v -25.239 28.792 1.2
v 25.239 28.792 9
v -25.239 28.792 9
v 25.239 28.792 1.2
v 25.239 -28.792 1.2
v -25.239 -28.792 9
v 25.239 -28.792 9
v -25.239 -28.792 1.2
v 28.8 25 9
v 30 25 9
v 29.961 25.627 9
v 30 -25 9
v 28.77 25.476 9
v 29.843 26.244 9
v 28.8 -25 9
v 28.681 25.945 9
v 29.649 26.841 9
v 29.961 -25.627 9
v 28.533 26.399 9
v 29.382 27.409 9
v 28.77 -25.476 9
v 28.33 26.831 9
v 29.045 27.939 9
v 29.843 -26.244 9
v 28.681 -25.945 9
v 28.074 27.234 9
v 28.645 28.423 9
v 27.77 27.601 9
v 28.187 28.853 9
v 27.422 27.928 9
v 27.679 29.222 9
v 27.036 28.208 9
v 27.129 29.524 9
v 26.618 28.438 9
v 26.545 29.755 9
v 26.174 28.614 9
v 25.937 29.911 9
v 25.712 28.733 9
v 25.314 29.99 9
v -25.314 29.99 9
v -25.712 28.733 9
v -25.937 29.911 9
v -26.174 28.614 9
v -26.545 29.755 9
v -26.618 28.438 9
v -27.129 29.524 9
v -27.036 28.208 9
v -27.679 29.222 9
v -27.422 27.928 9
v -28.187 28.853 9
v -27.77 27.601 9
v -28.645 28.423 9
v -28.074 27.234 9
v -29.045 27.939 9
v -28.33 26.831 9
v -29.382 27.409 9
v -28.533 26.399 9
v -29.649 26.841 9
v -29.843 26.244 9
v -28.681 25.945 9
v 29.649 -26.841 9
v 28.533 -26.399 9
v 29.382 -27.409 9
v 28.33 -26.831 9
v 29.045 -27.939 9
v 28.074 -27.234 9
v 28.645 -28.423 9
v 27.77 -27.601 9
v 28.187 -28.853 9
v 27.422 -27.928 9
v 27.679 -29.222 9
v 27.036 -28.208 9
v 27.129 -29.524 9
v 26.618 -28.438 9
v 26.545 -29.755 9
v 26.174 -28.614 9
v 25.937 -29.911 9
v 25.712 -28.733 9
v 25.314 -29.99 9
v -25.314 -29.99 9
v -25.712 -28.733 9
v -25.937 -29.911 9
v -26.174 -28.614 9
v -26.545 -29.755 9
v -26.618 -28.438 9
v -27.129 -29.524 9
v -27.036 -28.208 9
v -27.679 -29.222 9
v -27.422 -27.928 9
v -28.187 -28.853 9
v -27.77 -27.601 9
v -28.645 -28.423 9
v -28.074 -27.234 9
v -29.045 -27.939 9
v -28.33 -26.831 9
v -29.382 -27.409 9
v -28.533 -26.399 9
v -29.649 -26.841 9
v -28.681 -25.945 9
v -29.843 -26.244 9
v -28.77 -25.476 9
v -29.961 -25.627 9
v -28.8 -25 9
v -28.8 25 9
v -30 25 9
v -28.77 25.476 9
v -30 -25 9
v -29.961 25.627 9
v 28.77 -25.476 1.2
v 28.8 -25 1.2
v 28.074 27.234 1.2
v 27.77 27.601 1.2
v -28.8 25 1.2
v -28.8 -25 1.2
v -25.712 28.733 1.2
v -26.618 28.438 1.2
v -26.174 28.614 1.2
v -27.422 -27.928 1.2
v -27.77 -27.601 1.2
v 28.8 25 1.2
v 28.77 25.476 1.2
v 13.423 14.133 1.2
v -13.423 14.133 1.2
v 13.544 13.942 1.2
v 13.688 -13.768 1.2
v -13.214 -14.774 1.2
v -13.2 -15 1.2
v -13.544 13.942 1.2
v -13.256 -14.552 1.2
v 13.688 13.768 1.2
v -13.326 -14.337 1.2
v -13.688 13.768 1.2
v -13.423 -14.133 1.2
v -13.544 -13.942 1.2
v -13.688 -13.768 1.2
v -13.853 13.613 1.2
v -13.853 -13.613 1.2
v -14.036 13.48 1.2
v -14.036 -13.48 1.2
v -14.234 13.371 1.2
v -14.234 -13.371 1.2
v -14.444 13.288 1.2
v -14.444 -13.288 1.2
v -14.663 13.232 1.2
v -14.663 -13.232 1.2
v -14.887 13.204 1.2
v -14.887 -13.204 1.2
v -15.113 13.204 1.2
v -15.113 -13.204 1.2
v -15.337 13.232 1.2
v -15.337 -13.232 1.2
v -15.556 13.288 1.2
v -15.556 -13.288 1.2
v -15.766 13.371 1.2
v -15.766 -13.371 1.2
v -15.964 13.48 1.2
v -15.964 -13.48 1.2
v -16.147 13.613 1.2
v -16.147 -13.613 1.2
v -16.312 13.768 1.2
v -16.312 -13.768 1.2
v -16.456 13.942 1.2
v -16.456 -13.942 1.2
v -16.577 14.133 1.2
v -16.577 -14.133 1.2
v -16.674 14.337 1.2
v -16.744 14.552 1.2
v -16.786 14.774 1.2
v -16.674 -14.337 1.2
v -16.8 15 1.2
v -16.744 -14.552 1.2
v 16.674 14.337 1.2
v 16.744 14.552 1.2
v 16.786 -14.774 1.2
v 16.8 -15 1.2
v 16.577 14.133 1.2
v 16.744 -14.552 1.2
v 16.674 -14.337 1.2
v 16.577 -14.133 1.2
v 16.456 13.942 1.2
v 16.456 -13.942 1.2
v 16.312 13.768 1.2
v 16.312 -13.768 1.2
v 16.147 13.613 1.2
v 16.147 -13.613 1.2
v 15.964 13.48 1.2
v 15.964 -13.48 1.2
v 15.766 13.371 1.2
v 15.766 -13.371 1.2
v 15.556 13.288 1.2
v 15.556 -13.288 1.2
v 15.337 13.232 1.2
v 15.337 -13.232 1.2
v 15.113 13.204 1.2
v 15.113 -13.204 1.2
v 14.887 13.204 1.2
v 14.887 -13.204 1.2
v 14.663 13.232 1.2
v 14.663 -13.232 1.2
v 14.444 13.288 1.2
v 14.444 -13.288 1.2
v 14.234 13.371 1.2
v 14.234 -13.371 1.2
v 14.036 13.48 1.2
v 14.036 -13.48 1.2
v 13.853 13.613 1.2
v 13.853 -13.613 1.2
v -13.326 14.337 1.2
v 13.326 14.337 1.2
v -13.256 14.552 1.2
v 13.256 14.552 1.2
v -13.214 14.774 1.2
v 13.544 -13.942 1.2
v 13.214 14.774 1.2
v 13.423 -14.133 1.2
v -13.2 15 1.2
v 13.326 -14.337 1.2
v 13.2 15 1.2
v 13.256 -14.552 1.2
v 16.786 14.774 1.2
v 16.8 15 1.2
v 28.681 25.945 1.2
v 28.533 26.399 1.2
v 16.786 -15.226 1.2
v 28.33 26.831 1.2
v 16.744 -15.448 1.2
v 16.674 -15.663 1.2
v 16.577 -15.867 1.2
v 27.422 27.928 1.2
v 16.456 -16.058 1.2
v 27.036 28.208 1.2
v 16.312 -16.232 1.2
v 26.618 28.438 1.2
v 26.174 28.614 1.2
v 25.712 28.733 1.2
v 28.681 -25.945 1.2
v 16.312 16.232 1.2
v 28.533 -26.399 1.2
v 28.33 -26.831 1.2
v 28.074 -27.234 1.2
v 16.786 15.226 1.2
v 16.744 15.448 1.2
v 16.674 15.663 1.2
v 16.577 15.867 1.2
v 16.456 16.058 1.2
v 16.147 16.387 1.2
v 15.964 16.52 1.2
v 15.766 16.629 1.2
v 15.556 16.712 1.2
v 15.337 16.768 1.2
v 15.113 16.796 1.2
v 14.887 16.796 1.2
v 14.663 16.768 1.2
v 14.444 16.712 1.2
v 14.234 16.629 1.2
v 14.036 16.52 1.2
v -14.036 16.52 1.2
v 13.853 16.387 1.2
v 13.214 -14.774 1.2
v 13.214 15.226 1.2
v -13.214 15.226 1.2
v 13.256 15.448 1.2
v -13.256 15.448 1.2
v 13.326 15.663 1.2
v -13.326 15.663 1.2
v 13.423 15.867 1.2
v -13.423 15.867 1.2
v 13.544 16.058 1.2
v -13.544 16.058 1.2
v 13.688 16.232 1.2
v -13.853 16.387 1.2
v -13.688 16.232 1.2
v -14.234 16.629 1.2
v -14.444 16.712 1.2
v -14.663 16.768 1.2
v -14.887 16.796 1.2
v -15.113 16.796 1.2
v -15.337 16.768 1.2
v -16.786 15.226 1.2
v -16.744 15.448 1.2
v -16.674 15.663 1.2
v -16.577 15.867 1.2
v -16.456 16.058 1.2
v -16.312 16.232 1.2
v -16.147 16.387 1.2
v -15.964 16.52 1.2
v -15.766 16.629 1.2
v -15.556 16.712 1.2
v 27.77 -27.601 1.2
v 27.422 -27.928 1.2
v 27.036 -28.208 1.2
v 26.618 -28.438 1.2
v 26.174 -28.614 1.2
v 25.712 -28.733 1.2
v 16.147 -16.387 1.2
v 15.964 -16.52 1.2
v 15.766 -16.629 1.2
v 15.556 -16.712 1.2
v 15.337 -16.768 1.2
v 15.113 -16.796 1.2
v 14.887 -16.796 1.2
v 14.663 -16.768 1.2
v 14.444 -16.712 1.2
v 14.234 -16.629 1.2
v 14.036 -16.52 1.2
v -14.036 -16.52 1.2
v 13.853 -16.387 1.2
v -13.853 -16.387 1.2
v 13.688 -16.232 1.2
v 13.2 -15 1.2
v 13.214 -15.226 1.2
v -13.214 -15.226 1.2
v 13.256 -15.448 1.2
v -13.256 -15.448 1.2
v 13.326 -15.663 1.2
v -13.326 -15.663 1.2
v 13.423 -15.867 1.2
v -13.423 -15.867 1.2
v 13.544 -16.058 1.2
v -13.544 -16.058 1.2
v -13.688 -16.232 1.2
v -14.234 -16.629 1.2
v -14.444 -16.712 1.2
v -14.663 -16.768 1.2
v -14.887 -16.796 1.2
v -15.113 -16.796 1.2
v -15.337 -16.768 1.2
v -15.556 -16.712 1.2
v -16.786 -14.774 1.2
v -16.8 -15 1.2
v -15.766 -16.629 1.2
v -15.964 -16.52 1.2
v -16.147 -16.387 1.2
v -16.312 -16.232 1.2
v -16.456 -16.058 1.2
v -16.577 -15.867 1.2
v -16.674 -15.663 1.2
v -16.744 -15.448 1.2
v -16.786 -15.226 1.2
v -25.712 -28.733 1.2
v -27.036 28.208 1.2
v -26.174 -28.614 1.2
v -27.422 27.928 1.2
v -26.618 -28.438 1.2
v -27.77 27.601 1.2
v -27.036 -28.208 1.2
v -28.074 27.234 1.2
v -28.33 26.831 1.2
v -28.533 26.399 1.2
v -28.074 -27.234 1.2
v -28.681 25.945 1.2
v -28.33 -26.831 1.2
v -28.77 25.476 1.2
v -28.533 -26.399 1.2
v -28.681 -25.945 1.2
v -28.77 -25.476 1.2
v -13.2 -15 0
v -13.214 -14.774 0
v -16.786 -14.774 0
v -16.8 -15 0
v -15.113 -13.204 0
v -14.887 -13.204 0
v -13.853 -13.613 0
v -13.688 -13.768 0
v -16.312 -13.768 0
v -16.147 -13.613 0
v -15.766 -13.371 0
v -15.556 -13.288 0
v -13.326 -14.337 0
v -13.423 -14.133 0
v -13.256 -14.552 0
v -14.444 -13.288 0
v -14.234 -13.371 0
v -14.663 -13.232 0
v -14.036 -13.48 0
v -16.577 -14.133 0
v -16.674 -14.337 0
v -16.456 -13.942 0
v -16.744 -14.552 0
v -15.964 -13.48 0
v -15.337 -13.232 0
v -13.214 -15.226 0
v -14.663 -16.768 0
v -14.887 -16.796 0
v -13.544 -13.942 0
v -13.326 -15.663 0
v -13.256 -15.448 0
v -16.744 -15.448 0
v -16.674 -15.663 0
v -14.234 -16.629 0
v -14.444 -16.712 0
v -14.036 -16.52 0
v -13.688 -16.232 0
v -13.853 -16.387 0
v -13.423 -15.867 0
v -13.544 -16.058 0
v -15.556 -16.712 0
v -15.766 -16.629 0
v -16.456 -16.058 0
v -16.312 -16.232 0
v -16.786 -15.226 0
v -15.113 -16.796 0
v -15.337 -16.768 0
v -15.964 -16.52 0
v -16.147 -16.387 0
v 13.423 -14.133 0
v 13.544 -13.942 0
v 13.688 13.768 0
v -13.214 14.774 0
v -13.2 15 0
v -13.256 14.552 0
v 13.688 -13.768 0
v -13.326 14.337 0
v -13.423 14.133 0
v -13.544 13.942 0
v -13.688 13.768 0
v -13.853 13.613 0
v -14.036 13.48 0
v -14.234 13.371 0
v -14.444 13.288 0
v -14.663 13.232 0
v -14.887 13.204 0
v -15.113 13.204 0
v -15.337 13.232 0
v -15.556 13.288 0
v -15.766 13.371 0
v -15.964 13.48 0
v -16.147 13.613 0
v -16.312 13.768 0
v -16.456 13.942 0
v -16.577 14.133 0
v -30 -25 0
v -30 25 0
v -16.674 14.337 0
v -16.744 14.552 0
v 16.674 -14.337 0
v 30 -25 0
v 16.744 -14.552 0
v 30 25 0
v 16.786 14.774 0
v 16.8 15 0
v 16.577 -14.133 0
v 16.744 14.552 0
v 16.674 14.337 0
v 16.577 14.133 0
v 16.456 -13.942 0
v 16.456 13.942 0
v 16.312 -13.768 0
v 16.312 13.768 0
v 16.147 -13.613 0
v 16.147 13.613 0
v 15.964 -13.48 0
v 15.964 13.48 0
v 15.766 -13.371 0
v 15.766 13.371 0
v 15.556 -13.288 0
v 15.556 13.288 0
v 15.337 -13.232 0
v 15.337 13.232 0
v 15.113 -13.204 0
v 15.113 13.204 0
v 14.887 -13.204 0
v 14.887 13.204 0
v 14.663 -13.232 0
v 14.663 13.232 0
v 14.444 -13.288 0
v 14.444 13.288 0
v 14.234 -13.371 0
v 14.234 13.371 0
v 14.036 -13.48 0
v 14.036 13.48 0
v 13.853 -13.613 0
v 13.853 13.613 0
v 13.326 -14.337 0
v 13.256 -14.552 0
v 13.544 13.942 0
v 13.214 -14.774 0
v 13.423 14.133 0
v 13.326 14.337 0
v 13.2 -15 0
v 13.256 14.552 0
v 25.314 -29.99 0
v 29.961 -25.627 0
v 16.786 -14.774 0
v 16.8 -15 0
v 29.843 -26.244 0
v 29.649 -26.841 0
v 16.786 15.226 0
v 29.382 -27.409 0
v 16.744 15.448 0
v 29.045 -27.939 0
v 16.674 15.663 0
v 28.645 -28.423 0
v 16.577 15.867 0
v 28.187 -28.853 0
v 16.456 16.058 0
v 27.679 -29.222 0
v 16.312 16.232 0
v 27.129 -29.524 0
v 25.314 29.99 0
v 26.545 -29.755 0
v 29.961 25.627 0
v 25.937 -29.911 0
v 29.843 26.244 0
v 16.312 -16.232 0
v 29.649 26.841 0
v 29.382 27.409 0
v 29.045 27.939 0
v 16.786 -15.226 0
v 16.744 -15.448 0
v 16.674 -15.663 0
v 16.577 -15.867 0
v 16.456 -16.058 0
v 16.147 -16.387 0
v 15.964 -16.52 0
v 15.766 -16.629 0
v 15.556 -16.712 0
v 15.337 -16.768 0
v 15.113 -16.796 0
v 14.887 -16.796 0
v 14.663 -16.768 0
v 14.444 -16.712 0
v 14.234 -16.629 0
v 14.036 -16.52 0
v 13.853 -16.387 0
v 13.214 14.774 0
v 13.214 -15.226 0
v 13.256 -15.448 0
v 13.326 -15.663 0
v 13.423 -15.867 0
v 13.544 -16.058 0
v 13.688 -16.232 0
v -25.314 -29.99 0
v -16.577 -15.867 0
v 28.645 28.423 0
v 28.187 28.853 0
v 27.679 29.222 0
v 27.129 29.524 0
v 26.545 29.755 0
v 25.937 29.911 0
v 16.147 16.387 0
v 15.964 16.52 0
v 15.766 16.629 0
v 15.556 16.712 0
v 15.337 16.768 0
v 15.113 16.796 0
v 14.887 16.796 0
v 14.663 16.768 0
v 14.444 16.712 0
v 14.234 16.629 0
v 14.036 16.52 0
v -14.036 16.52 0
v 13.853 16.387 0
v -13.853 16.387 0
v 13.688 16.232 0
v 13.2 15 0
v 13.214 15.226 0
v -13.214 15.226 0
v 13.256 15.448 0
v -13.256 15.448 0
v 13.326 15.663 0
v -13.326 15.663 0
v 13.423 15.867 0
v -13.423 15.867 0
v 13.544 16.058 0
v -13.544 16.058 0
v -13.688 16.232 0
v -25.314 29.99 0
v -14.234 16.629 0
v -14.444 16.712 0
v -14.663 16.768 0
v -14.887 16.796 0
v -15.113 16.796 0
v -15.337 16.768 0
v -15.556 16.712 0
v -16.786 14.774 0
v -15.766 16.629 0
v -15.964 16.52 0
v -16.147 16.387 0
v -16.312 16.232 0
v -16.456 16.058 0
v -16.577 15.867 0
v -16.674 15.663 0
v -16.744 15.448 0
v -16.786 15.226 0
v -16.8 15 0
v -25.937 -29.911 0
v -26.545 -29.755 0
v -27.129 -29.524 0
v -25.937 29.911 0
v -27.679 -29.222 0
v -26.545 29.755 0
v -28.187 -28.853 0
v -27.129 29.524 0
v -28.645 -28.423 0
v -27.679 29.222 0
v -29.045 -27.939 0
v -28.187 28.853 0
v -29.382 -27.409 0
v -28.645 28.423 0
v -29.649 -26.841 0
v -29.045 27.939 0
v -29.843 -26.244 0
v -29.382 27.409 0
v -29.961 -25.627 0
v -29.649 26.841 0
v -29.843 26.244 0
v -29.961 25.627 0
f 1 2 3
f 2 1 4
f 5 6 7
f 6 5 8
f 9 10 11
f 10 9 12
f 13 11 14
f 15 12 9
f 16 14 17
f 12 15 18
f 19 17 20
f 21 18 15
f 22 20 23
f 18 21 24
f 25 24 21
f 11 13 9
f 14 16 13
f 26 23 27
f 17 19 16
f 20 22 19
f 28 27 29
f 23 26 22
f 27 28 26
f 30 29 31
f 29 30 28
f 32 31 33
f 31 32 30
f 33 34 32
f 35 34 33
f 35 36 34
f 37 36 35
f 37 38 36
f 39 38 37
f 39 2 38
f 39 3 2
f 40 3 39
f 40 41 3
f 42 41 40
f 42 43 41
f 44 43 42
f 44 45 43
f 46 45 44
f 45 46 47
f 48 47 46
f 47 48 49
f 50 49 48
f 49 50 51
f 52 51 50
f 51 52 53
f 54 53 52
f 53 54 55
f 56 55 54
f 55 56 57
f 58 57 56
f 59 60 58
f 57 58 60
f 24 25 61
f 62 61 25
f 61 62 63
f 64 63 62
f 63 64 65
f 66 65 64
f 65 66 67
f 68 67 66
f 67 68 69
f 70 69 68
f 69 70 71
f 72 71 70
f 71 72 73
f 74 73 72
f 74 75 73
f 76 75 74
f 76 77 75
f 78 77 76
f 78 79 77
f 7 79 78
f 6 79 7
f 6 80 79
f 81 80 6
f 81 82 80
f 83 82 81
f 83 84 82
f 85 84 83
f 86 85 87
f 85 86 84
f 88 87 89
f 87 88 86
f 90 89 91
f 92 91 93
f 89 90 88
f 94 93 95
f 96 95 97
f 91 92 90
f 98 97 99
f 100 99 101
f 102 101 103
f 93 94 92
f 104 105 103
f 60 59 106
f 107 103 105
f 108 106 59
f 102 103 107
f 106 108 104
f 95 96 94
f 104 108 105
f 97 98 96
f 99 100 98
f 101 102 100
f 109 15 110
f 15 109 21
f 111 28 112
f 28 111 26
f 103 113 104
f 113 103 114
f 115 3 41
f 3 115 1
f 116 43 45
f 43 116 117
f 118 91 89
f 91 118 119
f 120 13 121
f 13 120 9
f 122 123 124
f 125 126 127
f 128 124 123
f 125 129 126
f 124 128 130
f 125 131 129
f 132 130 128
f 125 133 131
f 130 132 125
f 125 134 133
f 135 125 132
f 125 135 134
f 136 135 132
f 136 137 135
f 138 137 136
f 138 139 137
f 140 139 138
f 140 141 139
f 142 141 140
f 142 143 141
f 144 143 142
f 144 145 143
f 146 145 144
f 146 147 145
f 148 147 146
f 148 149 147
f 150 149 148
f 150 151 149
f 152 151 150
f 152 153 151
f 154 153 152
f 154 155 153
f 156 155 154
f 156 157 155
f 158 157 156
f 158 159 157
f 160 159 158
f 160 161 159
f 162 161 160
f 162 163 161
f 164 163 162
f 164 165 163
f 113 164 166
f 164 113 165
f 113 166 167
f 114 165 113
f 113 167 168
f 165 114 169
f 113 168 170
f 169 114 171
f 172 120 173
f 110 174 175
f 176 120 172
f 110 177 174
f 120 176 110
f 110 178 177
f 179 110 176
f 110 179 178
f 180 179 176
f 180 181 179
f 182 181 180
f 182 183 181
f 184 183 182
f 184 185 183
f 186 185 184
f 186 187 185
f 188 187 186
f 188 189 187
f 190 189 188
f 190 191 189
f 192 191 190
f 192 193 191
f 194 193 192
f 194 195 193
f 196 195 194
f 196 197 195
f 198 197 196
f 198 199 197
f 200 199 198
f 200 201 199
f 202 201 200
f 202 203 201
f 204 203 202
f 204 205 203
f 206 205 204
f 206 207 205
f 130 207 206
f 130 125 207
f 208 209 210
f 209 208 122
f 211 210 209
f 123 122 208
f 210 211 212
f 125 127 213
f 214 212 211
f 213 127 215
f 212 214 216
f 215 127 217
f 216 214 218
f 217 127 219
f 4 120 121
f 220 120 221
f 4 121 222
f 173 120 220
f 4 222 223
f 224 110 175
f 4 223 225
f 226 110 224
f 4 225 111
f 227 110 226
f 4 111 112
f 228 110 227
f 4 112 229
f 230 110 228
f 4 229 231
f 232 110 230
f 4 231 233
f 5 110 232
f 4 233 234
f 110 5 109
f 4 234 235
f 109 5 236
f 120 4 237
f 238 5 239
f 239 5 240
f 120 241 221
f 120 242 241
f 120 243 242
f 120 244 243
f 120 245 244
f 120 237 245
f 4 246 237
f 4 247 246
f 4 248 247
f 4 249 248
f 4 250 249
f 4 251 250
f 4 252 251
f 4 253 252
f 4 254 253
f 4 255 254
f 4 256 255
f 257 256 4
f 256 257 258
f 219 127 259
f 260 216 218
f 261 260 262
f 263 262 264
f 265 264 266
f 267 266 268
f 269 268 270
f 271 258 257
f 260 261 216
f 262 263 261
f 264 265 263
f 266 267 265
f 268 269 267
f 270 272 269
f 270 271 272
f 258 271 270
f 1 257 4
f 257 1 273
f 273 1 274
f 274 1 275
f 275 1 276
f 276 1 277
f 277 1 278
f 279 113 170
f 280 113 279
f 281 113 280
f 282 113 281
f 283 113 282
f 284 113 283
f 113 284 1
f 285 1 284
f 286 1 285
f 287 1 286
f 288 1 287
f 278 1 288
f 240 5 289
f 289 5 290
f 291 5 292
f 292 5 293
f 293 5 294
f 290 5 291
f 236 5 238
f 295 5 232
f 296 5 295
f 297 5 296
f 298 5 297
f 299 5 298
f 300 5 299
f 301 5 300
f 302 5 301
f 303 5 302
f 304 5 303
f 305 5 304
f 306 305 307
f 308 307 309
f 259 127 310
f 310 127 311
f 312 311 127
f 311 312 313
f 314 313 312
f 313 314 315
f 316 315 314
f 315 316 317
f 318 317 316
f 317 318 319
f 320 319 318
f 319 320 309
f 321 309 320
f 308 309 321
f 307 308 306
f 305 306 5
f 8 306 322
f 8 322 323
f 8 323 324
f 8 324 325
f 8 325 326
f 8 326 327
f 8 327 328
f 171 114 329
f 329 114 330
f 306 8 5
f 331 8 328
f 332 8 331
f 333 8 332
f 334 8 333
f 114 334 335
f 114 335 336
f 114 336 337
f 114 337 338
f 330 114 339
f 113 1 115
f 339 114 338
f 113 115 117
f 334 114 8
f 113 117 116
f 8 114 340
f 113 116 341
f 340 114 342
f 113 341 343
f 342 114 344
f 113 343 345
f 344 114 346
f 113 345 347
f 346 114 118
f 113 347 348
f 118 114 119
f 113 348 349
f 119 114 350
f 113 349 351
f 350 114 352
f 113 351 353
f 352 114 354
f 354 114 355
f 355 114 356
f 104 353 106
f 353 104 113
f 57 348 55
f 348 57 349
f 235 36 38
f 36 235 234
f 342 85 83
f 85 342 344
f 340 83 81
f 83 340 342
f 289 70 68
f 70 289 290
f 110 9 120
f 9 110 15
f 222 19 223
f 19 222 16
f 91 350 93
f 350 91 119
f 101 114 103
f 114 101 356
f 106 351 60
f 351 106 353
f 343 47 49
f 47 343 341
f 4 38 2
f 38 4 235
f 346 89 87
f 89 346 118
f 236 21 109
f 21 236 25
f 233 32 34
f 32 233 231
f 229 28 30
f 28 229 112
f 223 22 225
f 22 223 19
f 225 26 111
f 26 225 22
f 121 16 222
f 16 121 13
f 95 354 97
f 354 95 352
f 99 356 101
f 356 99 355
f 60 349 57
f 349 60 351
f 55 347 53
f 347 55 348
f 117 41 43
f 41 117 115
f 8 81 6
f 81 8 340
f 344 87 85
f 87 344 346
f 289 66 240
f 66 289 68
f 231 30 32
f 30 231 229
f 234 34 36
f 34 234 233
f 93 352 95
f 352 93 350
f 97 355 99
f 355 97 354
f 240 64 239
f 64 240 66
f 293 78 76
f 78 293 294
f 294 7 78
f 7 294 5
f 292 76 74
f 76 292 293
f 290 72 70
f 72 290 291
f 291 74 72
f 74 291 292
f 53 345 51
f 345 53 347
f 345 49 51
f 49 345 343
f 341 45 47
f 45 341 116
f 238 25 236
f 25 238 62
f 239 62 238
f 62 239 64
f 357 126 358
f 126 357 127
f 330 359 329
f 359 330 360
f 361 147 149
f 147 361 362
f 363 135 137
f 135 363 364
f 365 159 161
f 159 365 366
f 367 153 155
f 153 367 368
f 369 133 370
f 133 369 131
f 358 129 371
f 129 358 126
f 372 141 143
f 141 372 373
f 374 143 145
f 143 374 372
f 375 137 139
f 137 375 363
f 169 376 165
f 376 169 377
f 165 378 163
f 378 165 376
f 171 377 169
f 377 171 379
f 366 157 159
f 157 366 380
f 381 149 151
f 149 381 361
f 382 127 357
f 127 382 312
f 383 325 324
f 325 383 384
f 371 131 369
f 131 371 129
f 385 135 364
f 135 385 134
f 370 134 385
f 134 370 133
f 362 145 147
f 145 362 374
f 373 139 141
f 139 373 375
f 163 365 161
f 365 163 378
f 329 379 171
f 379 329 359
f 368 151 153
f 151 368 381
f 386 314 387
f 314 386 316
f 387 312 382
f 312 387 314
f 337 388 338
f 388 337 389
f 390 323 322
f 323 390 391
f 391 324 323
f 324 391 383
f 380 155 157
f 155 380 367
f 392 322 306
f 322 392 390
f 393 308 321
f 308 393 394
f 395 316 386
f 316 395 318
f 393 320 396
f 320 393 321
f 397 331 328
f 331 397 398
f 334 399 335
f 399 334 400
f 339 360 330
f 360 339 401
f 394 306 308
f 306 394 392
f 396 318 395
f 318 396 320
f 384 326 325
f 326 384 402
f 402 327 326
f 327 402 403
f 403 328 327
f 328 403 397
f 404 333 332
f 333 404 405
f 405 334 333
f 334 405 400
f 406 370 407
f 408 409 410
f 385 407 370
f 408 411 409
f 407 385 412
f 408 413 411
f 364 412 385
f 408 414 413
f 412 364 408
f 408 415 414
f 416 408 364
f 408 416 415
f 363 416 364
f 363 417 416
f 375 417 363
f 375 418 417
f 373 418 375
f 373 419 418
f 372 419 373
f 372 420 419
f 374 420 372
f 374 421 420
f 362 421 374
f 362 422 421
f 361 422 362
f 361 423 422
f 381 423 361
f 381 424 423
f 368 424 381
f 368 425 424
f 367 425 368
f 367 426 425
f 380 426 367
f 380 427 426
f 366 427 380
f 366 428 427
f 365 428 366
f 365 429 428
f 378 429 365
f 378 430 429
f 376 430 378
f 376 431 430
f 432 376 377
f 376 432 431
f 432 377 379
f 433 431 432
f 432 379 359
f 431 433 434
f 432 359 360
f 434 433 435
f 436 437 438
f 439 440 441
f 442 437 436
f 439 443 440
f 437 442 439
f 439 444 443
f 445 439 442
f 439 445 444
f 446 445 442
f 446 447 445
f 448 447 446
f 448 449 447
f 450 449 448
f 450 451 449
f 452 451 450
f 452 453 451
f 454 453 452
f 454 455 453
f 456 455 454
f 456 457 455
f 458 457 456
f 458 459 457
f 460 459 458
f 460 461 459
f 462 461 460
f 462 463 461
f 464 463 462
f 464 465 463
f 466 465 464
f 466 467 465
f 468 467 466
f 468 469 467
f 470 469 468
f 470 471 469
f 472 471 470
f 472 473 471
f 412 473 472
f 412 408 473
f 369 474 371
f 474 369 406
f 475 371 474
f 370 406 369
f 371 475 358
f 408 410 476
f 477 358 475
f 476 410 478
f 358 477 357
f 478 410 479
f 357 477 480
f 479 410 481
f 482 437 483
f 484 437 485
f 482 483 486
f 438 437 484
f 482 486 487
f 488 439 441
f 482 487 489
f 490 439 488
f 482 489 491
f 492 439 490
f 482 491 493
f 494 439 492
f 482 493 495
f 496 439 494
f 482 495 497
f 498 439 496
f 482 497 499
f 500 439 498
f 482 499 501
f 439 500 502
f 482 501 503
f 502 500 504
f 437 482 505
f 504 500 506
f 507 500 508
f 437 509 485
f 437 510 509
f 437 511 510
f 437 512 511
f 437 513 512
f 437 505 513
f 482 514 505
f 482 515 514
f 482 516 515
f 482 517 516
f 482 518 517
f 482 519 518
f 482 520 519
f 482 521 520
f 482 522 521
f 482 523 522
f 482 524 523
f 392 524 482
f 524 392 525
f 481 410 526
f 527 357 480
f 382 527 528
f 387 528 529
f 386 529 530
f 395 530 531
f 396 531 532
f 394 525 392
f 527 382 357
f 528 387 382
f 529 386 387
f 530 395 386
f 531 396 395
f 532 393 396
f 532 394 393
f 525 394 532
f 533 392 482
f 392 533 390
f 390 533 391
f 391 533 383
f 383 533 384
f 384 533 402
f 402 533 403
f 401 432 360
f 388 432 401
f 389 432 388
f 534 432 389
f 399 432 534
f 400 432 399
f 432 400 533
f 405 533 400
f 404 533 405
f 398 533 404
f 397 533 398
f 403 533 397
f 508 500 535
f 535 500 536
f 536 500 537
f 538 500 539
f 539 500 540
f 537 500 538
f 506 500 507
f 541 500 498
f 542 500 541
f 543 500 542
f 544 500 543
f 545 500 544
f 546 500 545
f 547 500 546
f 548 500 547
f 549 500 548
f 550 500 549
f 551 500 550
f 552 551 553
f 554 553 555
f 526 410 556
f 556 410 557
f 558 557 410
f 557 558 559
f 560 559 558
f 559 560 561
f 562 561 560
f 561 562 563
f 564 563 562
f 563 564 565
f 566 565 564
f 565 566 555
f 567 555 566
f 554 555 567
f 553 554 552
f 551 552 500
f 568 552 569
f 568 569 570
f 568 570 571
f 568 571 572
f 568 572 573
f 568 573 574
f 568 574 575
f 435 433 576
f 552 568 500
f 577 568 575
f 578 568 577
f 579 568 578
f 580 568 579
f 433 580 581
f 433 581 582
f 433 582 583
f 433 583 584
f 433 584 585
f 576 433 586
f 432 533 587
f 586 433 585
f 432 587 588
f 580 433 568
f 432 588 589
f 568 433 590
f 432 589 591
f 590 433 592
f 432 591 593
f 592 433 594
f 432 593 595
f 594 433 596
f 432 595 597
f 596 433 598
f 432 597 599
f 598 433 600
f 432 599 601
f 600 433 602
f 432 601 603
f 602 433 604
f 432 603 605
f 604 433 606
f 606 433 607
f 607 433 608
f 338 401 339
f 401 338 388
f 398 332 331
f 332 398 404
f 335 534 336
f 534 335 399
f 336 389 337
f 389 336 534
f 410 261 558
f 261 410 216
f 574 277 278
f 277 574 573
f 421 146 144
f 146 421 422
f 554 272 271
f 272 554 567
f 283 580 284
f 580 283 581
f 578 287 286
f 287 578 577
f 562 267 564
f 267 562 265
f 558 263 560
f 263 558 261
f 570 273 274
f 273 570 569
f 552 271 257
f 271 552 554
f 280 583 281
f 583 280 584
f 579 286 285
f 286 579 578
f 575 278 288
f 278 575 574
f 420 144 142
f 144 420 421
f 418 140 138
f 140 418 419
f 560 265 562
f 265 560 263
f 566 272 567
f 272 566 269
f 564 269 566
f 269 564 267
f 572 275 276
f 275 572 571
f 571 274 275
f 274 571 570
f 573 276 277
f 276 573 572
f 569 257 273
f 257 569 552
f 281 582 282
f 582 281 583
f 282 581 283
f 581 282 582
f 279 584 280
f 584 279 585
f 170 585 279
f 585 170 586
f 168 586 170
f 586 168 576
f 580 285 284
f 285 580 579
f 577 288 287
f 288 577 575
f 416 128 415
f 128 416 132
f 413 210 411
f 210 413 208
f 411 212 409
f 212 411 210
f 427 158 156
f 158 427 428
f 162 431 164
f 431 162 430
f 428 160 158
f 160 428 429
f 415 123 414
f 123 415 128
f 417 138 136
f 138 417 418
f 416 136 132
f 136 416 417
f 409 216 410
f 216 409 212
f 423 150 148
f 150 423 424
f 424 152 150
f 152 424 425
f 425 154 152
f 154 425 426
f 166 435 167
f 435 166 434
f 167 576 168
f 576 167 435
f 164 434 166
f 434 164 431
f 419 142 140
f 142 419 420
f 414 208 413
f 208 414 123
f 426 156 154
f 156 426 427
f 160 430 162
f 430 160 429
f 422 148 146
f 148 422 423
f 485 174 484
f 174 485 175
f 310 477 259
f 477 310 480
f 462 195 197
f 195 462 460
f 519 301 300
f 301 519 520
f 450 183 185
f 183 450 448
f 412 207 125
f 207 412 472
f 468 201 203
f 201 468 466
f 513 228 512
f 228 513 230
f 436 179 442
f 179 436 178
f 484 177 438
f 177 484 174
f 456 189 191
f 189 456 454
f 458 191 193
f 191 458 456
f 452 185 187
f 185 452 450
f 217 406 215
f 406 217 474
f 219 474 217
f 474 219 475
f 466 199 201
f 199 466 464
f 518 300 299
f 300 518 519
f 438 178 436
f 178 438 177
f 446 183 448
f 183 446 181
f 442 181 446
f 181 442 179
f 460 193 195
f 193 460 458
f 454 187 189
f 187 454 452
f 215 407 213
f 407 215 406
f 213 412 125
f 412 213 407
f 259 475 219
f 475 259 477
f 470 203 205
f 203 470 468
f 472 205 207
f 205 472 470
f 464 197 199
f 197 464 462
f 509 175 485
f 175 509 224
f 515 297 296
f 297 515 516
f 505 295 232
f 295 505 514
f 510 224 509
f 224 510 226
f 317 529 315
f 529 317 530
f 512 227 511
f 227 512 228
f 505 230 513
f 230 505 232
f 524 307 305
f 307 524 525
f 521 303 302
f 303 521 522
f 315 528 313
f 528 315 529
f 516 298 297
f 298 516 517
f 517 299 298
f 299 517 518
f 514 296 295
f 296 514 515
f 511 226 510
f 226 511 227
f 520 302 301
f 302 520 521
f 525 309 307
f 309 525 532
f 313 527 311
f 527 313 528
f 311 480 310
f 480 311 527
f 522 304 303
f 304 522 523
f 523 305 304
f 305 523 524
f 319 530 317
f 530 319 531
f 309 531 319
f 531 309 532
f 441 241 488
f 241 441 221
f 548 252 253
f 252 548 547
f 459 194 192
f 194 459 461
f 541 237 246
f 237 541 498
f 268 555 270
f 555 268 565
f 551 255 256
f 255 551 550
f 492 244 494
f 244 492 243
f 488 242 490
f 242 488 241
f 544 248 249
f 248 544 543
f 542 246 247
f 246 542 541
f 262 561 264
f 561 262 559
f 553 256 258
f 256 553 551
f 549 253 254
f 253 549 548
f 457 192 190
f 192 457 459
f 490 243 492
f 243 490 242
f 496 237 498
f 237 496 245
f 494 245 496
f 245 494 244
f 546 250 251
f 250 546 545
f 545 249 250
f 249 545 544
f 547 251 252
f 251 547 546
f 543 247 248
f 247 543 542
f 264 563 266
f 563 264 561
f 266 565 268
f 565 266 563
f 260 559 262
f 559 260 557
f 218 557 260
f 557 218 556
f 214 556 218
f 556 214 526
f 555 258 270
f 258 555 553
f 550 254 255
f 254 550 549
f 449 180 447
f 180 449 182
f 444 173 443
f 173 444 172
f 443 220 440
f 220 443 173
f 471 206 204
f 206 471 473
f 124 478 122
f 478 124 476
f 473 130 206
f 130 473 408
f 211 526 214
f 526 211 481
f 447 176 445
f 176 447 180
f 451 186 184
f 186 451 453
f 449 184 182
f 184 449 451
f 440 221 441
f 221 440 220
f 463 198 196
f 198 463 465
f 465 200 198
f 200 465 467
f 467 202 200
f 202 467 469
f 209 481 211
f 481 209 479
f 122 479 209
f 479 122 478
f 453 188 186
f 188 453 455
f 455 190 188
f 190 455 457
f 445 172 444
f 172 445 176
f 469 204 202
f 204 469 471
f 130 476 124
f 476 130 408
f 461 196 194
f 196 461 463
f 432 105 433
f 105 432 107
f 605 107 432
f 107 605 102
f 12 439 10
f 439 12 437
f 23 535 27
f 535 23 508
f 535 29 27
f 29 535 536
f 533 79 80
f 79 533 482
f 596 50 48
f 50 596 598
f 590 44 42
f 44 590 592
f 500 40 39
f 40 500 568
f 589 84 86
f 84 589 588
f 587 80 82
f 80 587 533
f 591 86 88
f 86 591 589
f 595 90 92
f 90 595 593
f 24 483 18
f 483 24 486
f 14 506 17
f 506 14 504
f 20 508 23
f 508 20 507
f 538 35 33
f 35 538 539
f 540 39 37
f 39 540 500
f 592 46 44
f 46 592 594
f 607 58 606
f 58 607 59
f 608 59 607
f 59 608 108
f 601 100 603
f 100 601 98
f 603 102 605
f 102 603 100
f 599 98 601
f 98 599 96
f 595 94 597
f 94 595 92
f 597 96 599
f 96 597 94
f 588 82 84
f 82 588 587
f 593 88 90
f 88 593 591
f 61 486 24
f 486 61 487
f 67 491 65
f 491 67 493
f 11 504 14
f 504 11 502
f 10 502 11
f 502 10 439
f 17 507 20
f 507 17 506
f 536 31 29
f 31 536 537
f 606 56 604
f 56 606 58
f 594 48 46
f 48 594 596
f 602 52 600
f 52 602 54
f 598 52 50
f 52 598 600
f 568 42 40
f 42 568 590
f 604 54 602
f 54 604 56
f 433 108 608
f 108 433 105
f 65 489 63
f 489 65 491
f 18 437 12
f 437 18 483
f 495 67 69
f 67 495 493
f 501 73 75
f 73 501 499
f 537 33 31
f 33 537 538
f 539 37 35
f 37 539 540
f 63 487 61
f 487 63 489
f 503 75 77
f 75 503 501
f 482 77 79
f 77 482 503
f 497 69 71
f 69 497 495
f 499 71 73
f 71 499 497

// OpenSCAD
$fn = 50;


difference() {
	union() {
		hull() {
			translate(v = [-25.0000000000, 25.0000000000, 0]) {
				cylinder(h = 9, r = 5);
			}
			translate(v = [25.0000000000, 25.0000000000, 0]) {
				cylinder(h = 9, r = 5);
			}
			translate(v = [-25.0000000000, -25.0000000000, 0]) {
				cylinder(h = 9, r = 5);
			}
			translate(v = [25.0000000000, -25.0000000000, 0]) {
				cylinder(h = 9, r = 5);
			}
		}
	}
	union() {
		translate(v = [0, 0, 1.2000000000]) {
			hull() {
				translate(v = [-25.0000000000, 25.0000000000, 0]) {
					cylinder(h = 7.8000000000, r = 3.8000000000);
				}
				translate(v = [25.0000000000, 25.0000000000, 0]) {
					cylinder(h = 7.8000000000, r = 3.8000000000);
				}
				translate(v = [-25.0000000000, -25.0000000000, 0]) {
					cylinder(h = 7.8000000000, r = 3.8000000000);
				}
				translate(v = [25.0000000000, -25.0000000000, 0]) {
					cylinder(h = 7.8000000000, r = 3.8000000000);
				}
			}
		}
		#translate(v = [-15.0000000000, -15.0000000000, 0]) {
			cylinder(h = 1.2000000000, r = 1.8000000000);
		}
		#translate(v = [-15.0000000000, 15.0000000000, 0]) {
			cylinder(h = 1.2000000000, r = 1.8000000000);
		}
		#translate(v = [15.0000000000, -15.0000000000, 0]) {
			cylinder(h = 1.2000000000, r = 1.8000000000);
		}
		#translate(v = [15.0000000000, 15.0000000000, 0]) {
			cylinder(h = 1.2000000000, r = 1.8000000000);
		}
	}
}
